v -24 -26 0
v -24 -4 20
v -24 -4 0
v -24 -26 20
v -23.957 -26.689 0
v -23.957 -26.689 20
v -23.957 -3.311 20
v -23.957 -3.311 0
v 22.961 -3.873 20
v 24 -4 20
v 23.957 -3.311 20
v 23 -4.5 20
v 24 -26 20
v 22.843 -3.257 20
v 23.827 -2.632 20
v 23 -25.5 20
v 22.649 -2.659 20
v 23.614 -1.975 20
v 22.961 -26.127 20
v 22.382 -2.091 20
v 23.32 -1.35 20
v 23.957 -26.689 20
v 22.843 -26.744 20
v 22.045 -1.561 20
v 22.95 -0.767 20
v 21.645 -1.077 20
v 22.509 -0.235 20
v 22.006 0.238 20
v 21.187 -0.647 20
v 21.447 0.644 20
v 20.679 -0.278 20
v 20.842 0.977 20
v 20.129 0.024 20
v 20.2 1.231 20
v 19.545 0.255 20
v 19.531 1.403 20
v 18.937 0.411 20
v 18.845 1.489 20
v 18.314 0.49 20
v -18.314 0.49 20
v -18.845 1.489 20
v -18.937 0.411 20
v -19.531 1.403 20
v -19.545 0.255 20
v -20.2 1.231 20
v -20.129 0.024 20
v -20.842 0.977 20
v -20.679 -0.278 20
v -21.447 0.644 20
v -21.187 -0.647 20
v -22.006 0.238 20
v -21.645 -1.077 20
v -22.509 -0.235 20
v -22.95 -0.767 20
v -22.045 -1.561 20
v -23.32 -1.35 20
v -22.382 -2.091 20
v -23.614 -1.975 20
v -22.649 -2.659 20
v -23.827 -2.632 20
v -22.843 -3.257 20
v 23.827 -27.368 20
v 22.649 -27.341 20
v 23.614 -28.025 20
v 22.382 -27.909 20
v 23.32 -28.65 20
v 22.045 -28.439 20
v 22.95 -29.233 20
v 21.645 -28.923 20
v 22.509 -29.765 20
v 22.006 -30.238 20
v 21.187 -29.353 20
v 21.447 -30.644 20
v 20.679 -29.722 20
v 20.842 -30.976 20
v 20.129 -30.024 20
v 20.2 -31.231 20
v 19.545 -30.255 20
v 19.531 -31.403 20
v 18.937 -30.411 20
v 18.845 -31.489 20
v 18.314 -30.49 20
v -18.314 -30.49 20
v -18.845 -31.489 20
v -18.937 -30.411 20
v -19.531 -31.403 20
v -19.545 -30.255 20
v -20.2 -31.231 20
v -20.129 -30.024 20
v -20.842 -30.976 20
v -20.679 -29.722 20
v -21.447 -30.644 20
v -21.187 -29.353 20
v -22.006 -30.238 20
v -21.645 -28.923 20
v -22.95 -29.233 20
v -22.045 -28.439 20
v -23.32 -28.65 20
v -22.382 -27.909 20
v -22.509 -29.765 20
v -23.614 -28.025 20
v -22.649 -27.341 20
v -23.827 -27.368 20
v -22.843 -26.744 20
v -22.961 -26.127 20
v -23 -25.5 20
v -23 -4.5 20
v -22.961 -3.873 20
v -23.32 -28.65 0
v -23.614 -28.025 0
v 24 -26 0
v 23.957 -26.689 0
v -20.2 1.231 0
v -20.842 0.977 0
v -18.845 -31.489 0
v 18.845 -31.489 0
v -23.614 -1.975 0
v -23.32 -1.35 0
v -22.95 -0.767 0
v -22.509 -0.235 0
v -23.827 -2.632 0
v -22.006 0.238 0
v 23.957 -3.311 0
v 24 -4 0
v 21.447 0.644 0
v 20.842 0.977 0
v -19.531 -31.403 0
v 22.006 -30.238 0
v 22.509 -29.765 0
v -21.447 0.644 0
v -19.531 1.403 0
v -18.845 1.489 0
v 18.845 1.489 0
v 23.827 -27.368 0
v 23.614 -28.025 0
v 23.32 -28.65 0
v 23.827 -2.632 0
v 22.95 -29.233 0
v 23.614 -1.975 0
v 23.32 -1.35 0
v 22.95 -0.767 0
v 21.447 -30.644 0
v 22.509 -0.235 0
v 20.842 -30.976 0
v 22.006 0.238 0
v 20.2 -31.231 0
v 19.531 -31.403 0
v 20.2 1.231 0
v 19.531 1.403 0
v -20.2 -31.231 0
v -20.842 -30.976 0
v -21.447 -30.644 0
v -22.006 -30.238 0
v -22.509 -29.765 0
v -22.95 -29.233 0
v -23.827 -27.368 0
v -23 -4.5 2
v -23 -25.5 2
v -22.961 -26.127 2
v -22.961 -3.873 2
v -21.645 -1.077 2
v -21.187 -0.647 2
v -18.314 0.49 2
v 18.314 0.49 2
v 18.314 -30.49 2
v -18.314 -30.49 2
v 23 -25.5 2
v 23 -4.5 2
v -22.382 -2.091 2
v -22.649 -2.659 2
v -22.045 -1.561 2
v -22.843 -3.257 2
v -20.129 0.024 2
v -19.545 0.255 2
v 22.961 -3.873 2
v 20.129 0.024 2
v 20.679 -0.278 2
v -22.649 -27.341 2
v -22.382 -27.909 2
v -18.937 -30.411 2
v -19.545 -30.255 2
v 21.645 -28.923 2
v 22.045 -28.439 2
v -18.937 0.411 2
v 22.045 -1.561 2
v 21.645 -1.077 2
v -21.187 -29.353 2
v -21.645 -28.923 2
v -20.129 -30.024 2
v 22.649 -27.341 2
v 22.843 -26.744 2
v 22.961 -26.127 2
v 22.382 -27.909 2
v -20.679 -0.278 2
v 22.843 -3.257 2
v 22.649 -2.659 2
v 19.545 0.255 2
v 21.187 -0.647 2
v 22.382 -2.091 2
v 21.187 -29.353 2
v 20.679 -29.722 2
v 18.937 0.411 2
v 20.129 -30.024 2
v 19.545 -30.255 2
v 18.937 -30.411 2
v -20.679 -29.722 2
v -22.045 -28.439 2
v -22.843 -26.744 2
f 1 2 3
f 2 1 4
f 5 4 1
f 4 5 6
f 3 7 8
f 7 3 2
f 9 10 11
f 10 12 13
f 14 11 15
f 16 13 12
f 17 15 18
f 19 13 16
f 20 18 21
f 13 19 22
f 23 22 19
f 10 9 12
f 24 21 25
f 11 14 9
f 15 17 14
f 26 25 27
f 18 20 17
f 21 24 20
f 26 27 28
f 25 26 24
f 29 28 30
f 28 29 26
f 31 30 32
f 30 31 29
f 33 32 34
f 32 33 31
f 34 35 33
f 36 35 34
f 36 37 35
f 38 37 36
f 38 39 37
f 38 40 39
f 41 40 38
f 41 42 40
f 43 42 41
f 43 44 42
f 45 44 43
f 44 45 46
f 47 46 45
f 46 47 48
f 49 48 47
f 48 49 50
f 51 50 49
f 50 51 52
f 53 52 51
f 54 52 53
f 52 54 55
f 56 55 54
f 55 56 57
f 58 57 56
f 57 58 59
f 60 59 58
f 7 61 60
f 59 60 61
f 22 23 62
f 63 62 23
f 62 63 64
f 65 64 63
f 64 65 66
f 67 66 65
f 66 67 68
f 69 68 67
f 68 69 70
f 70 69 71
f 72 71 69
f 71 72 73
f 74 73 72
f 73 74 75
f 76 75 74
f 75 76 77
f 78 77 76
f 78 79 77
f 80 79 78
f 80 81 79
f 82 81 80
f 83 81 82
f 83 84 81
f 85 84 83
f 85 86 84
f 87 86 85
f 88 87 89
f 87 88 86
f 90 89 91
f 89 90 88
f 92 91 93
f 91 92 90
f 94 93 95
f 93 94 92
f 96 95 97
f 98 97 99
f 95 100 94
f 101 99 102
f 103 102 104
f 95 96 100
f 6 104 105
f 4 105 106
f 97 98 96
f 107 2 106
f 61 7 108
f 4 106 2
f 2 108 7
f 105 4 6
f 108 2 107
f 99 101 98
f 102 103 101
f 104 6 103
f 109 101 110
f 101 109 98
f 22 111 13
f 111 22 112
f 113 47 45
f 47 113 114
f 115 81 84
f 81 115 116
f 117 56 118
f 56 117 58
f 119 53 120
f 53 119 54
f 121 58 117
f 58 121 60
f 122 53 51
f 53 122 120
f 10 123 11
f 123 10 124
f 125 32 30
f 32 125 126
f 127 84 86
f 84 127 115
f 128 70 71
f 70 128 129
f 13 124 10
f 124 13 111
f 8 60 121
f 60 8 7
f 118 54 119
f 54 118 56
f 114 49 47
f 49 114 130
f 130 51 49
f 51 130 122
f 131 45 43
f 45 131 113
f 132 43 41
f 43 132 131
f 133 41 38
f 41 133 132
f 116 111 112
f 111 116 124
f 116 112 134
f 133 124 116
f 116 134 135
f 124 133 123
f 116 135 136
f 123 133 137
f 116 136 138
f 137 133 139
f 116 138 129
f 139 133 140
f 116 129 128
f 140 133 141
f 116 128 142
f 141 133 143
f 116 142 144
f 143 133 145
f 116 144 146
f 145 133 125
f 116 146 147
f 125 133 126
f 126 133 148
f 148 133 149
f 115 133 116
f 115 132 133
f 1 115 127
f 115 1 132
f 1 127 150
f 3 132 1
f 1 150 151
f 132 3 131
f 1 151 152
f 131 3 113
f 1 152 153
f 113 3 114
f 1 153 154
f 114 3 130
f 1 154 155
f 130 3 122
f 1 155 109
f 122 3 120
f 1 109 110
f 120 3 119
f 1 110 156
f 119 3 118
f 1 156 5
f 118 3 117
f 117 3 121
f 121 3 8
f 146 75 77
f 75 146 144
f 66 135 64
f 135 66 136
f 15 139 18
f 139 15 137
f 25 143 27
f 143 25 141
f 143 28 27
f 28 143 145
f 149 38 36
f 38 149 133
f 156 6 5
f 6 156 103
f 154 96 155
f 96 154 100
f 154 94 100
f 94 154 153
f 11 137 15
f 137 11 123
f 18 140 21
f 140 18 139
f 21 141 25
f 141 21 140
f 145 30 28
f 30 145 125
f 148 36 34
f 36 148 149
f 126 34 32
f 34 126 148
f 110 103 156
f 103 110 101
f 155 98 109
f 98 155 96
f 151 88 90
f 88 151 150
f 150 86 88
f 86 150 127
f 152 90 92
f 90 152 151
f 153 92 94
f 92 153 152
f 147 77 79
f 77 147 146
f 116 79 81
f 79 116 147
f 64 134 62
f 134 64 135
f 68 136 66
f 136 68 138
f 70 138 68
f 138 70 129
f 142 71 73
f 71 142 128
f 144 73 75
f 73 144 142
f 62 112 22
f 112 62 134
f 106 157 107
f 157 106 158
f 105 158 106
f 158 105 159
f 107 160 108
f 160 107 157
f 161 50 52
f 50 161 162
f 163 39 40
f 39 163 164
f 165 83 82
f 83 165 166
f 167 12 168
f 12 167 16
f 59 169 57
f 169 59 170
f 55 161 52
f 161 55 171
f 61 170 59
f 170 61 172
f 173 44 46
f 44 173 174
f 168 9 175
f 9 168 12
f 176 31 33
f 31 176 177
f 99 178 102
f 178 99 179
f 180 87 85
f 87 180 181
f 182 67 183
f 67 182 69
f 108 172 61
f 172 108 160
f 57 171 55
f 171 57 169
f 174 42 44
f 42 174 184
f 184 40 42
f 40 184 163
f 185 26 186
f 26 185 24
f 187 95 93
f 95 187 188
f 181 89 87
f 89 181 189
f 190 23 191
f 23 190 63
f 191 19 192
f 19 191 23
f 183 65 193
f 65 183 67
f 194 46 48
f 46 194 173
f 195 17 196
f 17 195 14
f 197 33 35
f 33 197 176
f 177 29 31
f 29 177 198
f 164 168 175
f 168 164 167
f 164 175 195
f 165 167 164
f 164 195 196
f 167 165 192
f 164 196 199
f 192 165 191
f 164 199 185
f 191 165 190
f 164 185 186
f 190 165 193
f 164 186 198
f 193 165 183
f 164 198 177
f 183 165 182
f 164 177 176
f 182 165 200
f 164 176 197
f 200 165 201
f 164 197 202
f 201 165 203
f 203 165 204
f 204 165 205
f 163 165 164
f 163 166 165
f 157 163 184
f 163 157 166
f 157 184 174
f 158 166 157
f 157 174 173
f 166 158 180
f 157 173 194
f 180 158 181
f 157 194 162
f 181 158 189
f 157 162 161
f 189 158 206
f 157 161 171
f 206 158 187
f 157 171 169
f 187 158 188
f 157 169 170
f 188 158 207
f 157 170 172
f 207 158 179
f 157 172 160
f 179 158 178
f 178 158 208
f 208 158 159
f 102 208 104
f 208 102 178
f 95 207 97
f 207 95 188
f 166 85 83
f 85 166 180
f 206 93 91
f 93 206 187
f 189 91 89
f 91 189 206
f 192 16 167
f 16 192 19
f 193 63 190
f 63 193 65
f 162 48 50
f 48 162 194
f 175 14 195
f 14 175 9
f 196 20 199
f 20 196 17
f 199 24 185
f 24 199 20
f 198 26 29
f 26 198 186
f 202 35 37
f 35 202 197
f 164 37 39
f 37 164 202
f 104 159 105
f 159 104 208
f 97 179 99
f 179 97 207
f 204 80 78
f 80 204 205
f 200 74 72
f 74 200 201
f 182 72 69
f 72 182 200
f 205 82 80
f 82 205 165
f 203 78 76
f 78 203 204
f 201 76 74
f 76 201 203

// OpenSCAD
$fn = 50;


difference() {
	union() {
		translate(v = [0, -15.0000000000, 0]) {
			hull() {
				translate(v = [-18.5000000000, 11.0000000000, 0]) {
					cylinder(h = 20, r = 5.5000000000);
				}
				translate(v = [18.5000000000, 11.0000000000, 0]) {
					cylinder(h = 20, r = 5.5000000000);
				}
				translate(v = [-18.5000000000, -11.0000000000, 0]) {
					cylinder(h = 20, r = 5.5000000000);
				}
				translate(v = [18.5000000000, -11.0000000000, 0]) {
					cylinder(h = 20, r = 5.5000000000);
				}
			}
		}
	}
	union() {
		translate(v = [0, -15.0000000000, 2]) {
			hull() {
				translate(v = [-18.0000000000, 10.5000000000, 0]) {
					cylinder(h = 40, r = 5);
				}
				translate(v = [18.0000000000, 10.5000000000, 0]) {
					cylinder(h = 40, r = 5);
				}
				translate(v = [-18.0000000000, -10.5000000000, 0]) {
					cylinder(h = 40, r = 5);
				}
				translate(v = [18.0000000000, -10.5000000000, 0]) {
					cylinder(h = 40, r = 5);
				}
			}
		}
	}
}
